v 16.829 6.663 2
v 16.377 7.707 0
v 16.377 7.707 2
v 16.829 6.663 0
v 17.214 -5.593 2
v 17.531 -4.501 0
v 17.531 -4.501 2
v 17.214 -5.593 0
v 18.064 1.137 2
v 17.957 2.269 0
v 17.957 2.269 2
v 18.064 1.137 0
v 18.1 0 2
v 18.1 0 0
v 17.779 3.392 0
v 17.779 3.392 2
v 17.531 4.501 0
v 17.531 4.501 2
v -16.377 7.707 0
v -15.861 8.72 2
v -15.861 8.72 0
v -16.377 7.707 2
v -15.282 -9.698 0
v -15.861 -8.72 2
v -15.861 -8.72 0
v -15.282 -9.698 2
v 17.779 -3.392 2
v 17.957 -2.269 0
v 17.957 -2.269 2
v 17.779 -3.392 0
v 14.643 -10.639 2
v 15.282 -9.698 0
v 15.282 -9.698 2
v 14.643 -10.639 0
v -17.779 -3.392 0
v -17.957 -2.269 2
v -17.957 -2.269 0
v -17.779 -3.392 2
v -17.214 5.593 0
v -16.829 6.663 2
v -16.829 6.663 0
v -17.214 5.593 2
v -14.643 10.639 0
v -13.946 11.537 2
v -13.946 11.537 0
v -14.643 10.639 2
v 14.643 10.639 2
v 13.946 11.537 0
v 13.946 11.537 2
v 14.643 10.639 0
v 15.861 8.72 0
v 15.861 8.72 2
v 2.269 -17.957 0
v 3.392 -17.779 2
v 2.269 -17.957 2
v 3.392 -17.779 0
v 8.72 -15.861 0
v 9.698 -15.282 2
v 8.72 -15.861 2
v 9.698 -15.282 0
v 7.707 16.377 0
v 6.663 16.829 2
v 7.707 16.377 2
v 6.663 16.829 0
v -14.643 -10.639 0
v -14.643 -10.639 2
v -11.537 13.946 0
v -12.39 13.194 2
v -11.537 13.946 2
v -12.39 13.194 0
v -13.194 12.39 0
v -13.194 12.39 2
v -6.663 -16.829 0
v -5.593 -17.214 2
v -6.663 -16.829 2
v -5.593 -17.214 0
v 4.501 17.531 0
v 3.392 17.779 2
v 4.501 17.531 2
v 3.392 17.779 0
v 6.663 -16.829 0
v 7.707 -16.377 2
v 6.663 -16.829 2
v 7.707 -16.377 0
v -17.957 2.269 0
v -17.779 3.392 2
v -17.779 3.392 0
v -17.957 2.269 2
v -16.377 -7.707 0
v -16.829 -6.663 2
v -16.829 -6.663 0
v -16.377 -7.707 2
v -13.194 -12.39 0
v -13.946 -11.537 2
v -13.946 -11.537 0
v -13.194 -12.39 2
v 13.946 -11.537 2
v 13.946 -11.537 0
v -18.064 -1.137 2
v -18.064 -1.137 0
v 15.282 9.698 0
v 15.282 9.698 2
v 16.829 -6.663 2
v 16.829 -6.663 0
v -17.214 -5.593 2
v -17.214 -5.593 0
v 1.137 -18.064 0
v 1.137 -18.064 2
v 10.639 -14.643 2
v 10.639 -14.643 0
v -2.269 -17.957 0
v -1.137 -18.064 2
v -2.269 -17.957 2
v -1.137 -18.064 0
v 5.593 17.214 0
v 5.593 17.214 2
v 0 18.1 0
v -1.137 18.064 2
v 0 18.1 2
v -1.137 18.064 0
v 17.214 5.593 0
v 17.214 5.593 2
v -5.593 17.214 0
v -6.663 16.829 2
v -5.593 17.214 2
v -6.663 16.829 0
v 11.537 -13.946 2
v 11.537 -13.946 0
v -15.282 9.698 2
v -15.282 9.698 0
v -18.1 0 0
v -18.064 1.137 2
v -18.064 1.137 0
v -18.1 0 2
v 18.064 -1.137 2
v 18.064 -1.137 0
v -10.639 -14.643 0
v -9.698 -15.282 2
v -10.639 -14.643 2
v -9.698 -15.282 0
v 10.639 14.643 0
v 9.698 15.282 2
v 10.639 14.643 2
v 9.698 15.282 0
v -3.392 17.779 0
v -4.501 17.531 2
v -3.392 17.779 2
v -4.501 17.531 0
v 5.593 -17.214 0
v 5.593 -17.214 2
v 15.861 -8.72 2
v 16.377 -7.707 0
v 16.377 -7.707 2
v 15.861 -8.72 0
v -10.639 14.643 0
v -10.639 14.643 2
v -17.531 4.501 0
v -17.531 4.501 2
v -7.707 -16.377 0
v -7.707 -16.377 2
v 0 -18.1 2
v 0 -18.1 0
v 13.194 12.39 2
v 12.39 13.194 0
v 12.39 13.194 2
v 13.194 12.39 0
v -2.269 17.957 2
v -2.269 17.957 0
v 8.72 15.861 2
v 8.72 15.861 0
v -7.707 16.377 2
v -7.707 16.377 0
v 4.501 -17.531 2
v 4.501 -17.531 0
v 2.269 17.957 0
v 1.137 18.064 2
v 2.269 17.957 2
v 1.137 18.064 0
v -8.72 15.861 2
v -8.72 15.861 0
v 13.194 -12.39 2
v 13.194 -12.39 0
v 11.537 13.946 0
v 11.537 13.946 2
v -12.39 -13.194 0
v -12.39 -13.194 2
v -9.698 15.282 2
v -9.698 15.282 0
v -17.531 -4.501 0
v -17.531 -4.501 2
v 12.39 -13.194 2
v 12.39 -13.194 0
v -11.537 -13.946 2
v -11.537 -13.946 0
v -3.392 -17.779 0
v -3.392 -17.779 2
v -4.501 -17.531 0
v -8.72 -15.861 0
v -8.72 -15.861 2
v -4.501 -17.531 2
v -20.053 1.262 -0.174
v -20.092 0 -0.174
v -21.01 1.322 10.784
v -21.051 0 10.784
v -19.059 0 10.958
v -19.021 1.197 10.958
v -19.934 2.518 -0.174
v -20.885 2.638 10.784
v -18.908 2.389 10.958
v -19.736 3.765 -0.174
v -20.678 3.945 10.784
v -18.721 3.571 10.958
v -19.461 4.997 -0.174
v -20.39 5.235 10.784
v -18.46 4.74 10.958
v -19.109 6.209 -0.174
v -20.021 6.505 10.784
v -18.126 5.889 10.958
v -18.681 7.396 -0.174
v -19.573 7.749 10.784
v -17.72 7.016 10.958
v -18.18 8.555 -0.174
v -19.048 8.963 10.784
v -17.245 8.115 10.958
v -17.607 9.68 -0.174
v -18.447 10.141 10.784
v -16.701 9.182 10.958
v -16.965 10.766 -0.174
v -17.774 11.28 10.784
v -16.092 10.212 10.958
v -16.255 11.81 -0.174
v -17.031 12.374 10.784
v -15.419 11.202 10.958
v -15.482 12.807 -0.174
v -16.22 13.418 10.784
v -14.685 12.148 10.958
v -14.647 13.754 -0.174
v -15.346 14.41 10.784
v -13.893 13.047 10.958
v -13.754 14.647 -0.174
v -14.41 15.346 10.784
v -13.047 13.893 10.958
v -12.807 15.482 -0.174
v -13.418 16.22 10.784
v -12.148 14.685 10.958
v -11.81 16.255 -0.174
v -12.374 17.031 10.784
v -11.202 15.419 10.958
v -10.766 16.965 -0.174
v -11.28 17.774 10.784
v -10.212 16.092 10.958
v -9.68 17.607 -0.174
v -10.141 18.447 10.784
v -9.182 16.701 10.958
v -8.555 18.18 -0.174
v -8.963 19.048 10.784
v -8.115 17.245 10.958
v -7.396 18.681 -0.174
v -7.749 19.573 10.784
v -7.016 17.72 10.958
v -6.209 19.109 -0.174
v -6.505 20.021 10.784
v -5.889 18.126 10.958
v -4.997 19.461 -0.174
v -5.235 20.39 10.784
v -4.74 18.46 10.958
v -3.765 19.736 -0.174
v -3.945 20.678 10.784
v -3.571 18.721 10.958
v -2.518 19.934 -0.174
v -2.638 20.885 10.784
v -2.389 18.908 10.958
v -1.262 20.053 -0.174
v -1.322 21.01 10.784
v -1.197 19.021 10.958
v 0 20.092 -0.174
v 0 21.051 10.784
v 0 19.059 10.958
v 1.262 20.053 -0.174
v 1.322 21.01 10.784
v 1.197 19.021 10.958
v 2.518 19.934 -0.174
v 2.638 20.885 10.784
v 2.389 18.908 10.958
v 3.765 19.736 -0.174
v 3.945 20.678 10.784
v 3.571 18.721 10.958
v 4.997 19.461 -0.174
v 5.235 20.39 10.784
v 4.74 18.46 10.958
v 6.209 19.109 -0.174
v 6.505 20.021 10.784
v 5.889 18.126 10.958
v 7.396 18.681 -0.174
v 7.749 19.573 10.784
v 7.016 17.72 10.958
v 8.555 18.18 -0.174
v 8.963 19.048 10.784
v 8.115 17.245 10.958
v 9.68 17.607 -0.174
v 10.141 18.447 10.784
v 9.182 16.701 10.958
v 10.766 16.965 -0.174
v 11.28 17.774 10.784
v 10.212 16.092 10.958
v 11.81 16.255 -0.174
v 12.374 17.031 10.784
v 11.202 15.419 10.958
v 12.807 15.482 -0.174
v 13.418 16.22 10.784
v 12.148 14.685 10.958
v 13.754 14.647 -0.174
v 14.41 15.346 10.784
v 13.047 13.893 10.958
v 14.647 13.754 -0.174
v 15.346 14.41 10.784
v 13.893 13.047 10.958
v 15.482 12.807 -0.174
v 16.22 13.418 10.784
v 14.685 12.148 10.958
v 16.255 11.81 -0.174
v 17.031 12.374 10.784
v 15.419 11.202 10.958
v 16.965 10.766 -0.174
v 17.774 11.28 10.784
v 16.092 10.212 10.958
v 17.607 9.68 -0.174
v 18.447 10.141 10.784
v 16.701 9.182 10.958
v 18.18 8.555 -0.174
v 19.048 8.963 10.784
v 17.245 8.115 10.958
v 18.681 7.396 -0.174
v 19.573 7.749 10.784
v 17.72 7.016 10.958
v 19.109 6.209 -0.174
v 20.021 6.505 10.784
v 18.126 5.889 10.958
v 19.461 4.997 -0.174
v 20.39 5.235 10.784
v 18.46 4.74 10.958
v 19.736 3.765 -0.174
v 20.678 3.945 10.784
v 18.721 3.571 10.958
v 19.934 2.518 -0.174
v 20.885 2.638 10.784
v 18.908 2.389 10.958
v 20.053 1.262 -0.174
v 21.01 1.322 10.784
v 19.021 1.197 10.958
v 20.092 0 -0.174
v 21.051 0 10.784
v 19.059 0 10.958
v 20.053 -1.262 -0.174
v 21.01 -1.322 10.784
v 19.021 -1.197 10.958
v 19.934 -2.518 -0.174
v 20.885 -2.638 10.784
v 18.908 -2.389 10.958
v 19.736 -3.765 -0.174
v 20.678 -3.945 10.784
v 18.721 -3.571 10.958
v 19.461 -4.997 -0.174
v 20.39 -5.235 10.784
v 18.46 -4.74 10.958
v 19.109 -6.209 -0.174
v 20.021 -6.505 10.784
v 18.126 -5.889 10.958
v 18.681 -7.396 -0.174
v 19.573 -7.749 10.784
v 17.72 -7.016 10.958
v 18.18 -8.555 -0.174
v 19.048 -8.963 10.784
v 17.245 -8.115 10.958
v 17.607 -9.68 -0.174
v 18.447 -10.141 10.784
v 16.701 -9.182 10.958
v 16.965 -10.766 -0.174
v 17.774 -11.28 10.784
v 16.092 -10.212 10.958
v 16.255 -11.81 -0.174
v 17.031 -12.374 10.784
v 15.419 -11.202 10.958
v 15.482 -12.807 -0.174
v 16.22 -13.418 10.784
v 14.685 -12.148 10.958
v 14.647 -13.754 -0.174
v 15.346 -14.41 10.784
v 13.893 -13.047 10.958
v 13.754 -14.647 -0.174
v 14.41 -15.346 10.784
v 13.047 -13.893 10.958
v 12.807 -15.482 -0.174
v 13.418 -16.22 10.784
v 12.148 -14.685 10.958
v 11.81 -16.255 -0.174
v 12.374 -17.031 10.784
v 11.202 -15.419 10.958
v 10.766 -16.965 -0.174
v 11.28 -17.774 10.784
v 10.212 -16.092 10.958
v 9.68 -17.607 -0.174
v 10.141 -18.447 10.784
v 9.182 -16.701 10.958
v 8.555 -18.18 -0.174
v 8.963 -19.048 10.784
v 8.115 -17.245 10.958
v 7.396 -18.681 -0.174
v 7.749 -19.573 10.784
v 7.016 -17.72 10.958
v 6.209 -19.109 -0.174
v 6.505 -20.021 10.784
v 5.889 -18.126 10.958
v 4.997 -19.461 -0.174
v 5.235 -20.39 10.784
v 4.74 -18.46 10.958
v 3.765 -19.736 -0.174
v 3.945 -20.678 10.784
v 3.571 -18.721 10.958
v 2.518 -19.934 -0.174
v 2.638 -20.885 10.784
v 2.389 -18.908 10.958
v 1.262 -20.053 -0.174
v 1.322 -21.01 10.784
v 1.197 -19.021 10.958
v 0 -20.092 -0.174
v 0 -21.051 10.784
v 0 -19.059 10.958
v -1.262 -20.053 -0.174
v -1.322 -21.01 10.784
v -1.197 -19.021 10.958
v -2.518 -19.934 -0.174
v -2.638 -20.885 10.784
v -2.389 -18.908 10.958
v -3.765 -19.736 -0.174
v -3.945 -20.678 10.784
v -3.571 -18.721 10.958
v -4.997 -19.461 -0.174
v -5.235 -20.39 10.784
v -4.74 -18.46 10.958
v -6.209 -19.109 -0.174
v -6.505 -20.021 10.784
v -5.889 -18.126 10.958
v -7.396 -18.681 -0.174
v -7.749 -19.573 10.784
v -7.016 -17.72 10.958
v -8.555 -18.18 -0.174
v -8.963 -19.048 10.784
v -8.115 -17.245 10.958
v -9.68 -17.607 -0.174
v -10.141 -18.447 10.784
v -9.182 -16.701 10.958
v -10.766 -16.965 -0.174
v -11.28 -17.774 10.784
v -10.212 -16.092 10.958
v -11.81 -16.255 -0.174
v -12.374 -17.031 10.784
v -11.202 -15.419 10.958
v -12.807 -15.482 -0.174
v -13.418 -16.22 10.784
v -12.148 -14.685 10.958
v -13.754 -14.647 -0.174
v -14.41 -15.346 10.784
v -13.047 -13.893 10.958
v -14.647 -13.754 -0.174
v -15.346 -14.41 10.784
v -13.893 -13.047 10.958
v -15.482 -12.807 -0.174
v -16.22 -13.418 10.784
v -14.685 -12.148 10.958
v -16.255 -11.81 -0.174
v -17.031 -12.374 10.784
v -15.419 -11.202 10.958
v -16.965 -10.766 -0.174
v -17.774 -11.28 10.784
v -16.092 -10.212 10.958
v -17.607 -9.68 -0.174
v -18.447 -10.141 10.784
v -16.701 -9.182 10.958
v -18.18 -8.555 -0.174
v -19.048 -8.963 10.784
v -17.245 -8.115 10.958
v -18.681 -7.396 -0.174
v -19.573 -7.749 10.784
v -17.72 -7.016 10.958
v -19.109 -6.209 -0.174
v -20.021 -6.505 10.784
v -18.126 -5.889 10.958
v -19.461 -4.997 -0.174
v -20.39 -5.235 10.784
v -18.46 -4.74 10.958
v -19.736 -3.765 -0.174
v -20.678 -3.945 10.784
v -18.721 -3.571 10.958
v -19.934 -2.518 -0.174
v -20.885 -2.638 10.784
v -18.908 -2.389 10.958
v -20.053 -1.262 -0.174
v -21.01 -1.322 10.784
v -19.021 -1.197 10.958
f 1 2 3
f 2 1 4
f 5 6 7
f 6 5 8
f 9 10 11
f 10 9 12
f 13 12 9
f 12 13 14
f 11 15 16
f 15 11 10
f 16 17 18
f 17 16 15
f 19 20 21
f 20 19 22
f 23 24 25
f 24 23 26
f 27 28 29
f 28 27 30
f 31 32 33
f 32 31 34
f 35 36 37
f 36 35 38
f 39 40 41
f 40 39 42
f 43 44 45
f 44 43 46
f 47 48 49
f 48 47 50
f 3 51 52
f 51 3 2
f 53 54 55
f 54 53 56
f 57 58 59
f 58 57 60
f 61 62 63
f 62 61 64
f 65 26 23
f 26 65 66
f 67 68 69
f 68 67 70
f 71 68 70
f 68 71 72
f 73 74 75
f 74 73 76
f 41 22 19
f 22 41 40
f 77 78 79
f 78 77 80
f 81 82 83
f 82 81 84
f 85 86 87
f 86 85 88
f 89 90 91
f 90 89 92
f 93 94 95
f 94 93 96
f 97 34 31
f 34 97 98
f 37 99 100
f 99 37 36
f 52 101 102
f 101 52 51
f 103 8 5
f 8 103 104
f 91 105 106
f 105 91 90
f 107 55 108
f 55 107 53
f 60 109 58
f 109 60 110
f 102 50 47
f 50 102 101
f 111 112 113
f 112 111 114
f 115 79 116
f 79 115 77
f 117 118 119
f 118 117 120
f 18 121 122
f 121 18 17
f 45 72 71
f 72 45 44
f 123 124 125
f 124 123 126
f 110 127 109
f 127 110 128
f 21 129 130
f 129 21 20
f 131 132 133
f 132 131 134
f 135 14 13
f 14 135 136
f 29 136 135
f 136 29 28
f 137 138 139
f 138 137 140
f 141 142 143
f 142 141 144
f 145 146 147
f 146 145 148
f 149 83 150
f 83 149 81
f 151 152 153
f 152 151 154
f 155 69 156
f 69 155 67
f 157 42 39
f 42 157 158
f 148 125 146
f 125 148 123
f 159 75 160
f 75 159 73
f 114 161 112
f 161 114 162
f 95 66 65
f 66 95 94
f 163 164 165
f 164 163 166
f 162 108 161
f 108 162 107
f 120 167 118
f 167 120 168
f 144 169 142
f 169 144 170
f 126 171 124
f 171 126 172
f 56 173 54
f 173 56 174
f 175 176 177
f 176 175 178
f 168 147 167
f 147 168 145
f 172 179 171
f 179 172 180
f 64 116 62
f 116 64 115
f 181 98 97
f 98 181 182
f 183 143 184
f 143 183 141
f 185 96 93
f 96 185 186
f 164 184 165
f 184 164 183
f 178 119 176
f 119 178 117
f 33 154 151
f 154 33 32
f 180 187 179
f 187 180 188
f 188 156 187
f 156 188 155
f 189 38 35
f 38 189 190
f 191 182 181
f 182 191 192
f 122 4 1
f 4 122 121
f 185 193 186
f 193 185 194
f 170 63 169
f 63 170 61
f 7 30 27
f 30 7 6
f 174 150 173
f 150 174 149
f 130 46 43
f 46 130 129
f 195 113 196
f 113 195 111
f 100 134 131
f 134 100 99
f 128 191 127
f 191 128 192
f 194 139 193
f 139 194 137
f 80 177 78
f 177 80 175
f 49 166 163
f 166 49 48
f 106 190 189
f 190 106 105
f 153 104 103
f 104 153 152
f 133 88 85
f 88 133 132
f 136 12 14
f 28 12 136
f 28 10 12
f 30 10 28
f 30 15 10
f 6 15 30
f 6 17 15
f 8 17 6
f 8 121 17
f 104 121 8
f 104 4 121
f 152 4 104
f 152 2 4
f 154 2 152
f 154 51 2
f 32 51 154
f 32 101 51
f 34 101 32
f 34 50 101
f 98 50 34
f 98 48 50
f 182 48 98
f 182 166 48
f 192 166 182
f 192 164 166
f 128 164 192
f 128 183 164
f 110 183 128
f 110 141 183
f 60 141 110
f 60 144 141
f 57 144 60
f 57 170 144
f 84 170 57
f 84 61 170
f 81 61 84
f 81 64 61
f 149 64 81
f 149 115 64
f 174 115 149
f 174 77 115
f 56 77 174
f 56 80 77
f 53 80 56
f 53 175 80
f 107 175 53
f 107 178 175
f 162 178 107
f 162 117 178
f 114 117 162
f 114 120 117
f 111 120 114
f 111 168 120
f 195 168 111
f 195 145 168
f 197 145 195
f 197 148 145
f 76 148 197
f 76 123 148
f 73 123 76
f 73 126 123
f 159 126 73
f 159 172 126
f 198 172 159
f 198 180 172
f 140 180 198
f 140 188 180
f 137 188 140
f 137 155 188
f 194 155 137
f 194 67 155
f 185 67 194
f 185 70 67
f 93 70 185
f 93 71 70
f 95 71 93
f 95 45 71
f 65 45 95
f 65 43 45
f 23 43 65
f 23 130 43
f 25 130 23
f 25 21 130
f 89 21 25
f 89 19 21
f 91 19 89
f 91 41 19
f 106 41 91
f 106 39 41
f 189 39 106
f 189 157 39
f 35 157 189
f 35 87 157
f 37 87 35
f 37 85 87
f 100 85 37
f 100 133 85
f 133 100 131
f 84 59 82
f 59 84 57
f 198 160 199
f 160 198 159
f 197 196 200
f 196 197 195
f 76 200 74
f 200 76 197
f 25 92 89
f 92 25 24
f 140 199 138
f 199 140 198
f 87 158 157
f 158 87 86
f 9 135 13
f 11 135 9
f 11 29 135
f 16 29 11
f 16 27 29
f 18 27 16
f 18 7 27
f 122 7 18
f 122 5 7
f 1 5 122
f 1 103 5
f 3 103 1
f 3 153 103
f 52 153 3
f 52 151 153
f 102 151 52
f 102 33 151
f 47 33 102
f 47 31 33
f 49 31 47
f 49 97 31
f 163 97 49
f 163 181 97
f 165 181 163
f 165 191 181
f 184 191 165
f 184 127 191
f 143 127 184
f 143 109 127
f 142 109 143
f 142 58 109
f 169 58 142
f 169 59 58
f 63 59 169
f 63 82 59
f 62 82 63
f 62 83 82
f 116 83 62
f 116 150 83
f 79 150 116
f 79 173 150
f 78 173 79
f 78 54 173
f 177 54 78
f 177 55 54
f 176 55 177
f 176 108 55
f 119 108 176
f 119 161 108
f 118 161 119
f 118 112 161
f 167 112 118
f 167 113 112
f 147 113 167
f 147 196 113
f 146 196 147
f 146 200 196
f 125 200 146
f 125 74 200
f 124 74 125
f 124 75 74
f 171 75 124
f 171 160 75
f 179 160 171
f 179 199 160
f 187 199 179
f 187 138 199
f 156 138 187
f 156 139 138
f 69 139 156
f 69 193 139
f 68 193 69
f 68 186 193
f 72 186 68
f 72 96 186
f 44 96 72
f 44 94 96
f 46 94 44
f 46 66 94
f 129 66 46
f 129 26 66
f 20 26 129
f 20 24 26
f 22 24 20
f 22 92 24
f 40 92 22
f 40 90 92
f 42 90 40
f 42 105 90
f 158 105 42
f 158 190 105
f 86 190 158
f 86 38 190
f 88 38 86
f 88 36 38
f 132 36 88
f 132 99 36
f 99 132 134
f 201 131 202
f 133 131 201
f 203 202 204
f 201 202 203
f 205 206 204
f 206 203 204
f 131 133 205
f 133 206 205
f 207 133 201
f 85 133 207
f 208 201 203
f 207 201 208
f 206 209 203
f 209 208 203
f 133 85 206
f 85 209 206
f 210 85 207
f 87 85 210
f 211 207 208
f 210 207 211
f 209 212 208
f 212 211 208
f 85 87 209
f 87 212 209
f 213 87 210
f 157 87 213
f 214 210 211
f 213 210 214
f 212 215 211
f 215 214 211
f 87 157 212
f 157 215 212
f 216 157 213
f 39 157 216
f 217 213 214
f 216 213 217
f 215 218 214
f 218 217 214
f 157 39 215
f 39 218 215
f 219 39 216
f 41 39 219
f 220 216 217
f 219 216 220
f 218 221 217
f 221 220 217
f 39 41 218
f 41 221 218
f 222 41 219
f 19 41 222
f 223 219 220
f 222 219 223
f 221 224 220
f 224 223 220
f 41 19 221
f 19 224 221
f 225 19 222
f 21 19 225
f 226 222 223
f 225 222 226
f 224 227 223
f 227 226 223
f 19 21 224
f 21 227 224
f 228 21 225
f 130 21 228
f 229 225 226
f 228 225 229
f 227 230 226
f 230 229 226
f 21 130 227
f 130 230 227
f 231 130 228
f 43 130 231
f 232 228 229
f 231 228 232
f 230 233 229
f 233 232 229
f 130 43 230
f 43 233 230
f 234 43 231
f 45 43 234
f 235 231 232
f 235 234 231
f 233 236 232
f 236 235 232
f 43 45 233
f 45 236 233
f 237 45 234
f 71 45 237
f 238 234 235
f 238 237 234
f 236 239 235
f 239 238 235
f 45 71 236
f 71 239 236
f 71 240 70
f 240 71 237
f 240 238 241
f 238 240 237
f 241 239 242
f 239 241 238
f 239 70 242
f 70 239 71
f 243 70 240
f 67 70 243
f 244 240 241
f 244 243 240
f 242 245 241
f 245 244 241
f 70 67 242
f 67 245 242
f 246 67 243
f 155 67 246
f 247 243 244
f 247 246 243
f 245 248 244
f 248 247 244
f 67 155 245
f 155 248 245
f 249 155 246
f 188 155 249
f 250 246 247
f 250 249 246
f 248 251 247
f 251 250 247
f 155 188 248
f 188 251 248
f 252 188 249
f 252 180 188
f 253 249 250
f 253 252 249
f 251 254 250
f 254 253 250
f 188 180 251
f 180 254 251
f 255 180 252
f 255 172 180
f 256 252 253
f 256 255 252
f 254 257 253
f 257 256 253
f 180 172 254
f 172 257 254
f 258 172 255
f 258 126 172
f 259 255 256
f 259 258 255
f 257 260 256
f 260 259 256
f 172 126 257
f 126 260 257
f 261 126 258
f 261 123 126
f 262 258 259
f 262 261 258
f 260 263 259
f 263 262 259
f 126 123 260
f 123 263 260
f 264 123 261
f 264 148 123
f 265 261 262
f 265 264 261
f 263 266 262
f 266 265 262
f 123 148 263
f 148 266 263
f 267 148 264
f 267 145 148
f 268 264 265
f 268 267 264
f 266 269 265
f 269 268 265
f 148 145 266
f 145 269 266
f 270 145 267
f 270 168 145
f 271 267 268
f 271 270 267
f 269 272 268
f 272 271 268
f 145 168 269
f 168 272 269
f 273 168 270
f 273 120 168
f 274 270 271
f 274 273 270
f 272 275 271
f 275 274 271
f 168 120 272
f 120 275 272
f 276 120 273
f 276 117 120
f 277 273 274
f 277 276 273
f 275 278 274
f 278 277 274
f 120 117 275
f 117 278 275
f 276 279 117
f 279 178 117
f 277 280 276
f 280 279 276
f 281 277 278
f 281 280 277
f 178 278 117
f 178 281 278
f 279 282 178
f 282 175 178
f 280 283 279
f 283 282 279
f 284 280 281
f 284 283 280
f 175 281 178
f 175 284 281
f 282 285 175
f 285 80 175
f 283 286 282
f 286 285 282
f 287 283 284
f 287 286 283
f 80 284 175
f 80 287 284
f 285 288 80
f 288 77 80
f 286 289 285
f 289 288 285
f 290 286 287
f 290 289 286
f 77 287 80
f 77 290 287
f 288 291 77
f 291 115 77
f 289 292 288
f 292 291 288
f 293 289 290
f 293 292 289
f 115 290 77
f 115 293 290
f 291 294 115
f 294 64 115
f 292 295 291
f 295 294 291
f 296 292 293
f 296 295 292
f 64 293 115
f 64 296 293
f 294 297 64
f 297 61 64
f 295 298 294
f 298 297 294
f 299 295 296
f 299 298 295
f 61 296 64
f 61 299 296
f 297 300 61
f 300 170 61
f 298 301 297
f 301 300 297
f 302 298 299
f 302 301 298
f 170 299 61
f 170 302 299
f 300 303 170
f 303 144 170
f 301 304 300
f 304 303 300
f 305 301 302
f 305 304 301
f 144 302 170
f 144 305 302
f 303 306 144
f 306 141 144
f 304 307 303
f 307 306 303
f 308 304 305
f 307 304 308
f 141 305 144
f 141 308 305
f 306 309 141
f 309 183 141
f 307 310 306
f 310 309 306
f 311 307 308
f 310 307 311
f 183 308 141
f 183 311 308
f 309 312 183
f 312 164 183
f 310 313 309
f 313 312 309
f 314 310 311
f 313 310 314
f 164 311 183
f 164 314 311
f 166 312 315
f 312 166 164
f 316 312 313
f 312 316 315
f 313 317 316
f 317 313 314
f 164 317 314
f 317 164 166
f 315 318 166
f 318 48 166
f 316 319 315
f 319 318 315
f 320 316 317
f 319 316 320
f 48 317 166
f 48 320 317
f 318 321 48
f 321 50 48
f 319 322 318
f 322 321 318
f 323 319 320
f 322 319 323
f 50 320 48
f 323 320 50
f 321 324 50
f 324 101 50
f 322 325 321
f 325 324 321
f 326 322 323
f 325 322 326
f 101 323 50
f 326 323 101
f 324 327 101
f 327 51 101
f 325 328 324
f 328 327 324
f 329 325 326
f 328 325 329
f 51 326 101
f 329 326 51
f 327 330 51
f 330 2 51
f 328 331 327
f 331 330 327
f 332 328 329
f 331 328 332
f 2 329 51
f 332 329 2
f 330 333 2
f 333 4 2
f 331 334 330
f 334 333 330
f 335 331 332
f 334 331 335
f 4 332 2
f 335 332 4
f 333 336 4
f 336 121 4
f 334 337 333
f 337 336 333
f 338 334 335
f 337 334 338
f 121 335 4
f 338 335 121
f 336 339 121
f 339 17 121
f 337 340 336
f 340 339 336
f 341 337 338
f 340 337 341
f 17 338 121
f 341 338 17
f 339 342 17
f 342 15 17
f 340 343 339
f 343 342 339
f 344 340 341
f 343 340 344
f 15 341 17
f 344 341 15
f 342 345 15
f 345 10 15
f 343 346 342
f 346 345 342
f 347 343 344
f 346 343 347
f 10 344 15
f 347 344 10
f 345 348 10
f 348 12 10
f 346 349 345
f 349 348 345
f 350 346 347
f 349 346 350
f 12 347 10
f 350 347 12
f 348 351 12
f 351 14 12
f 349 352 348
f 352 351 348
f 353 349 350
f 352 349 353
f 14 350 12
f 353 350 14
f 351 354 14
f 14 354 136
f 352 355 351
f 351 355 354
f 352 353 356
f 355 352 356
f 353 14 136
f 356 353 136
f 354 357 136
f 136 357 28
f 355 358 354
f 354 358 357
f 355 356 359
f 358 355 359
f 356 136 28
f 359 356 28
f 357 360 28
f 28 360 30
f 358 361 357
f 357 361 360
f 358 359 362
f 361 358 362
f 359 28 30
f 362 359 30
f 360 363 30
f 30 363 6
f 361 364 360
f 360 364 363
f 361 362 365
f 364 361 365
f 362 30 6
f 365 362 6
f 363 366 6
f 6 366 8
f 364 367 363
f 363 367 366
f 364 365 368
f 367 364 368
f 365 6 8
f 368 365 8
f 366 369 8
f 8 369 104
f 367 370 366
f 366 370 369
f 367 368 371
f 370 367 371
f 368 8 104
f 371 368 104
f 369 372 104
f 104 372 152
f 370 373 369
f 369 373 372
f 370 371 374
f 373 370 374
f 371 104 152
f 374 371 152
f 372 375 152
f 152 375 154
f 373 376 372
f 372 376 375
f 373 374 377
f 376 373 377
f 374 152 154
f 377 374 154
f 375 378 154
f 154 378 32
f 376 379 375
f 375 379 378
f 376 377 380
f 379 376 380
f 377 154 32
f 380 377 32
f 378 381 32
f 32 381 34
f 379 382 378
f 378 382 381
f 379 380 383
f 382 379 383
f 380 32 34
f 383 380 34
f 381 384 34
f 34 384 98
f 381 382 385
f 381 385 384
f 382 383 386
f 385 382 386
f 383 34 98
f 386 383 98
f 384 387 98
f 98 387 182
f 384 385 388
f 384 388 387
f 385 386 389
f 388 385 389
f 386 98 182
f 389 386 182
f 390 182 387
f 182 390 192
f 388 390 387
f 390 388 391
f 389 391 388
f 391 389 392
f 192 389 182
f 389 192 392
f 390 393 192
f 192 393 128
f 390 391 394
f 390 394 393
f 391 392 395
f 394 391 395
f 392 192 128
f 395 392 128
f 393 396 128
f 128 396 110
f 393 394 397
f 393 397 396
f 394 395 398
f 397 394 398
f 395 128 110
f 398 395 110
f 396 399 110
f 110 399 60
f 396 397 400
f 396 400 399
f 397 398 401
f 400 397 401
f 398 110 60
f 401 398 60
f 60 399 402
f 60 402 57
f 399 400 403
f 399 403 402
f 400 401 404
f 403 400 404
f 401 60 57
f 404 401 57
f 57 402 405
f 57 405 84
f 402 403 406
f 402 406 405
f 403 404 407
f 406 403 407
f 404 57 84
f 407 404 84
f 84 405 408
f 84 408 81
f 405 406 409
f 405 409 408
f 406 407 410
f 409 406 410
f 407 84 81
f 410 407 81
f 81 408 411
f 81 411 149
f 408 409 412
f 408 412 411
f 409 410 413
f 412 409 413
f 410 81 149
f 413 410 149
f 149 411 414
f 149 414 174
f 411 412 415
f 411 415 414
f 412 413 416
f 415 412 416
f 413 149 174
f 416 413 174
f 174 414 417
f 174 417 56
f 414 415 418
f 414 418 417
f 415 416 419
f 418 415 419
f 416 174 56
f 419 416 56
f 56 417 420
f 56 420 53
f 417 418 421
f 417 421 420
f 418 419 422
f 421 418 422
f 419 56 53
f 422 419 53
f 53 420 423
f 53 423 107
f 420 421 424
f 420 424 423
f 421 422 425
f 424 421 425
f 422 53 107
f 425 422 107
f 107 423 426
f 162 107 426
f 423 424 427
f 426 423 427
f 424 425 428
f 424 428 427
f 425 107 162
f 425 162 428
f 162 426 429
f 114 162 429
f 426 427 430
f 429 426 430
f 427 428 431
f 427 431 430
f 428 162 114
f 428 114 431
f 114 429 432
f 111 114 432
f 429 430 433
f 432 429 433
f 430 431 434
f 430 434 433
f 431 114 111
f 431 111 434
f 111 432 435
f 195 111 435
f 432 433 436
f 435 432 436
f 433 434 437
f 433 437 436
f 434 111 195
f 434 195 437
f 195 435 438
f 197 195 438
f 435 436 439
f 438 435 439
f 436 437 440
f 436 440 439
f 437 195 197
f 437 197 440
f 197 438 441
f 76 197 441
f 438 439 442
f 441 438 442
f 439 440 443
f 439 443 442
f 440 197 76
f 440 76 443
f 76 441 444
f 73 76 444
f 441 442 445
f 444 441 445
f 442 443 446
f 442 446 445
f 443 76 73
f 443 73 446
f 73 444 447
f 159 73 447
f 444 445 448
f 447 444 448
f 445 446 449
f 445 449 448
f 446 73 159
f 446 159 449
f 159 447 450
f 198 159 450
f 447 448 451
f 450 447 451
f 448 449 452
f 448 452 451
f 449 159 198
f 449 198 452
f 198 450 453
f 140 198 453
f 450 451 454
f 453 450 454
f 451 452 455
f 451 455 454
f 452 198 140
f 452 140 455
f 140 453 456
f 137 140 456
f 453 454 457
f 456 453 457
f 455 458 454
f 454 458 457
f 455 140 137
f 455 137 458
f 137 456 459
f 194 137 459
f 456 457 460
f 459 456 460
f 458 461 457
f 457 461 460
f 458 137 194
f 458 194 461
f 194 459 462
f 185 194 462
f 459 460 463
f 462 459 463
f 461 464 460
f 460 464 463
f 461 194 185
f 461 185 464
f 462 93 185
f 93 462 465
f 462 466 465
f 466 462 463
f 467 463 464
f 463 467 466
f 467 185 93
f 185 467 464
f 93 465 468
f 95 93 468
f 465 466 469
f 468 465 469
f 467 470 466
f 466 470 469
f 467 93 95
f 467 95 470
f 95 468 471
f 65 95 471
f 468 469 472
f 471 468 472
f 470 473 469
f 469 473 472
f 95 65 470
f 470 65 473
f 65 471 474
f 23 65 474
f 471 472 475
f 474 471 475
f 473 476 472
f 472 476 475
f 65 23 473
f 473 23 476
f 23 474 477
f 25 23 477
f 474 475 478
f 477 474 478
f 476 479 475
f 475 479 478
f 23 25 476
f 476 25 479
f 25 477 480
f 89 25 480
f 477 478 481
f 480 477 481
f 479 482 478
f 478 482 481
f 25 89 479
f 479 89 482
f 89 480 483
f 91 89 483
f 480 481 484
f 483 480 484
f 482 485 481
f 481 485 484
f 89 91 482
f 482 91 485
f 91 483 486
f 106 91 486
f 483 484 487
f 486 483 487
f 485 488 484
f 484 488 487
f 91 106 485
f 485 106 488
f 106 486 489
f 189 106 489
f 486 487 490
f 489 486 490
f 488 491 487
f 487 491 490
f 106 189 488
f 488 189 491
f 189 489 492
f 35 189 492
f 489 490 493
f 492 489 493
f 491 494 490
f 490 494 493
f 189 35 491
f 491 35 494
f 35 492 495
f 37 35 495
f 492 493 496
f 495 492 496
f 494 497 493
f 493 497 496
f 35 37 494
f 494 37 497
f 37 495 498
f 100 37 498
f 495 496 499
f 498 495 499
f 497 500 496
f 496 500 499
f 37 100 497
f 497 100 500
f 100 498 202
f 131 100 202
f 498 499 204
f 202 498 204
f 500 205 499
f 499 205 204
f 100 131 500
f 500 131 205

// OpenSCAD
diameter=36.2;
z_dim=9.0;
angle=-5;
thickness=2;
$fn=100;

module maincylinder(){
cylinder(h=thickness,d=diameter,center=false, $fn=100);
}

module borders(){
rotate_extrude(){
    translate([diameter/2,0,0]) rotate([0,0,angle]) square([thickness,z_dim+thickness]);
} }

maincylinder();
borders();
